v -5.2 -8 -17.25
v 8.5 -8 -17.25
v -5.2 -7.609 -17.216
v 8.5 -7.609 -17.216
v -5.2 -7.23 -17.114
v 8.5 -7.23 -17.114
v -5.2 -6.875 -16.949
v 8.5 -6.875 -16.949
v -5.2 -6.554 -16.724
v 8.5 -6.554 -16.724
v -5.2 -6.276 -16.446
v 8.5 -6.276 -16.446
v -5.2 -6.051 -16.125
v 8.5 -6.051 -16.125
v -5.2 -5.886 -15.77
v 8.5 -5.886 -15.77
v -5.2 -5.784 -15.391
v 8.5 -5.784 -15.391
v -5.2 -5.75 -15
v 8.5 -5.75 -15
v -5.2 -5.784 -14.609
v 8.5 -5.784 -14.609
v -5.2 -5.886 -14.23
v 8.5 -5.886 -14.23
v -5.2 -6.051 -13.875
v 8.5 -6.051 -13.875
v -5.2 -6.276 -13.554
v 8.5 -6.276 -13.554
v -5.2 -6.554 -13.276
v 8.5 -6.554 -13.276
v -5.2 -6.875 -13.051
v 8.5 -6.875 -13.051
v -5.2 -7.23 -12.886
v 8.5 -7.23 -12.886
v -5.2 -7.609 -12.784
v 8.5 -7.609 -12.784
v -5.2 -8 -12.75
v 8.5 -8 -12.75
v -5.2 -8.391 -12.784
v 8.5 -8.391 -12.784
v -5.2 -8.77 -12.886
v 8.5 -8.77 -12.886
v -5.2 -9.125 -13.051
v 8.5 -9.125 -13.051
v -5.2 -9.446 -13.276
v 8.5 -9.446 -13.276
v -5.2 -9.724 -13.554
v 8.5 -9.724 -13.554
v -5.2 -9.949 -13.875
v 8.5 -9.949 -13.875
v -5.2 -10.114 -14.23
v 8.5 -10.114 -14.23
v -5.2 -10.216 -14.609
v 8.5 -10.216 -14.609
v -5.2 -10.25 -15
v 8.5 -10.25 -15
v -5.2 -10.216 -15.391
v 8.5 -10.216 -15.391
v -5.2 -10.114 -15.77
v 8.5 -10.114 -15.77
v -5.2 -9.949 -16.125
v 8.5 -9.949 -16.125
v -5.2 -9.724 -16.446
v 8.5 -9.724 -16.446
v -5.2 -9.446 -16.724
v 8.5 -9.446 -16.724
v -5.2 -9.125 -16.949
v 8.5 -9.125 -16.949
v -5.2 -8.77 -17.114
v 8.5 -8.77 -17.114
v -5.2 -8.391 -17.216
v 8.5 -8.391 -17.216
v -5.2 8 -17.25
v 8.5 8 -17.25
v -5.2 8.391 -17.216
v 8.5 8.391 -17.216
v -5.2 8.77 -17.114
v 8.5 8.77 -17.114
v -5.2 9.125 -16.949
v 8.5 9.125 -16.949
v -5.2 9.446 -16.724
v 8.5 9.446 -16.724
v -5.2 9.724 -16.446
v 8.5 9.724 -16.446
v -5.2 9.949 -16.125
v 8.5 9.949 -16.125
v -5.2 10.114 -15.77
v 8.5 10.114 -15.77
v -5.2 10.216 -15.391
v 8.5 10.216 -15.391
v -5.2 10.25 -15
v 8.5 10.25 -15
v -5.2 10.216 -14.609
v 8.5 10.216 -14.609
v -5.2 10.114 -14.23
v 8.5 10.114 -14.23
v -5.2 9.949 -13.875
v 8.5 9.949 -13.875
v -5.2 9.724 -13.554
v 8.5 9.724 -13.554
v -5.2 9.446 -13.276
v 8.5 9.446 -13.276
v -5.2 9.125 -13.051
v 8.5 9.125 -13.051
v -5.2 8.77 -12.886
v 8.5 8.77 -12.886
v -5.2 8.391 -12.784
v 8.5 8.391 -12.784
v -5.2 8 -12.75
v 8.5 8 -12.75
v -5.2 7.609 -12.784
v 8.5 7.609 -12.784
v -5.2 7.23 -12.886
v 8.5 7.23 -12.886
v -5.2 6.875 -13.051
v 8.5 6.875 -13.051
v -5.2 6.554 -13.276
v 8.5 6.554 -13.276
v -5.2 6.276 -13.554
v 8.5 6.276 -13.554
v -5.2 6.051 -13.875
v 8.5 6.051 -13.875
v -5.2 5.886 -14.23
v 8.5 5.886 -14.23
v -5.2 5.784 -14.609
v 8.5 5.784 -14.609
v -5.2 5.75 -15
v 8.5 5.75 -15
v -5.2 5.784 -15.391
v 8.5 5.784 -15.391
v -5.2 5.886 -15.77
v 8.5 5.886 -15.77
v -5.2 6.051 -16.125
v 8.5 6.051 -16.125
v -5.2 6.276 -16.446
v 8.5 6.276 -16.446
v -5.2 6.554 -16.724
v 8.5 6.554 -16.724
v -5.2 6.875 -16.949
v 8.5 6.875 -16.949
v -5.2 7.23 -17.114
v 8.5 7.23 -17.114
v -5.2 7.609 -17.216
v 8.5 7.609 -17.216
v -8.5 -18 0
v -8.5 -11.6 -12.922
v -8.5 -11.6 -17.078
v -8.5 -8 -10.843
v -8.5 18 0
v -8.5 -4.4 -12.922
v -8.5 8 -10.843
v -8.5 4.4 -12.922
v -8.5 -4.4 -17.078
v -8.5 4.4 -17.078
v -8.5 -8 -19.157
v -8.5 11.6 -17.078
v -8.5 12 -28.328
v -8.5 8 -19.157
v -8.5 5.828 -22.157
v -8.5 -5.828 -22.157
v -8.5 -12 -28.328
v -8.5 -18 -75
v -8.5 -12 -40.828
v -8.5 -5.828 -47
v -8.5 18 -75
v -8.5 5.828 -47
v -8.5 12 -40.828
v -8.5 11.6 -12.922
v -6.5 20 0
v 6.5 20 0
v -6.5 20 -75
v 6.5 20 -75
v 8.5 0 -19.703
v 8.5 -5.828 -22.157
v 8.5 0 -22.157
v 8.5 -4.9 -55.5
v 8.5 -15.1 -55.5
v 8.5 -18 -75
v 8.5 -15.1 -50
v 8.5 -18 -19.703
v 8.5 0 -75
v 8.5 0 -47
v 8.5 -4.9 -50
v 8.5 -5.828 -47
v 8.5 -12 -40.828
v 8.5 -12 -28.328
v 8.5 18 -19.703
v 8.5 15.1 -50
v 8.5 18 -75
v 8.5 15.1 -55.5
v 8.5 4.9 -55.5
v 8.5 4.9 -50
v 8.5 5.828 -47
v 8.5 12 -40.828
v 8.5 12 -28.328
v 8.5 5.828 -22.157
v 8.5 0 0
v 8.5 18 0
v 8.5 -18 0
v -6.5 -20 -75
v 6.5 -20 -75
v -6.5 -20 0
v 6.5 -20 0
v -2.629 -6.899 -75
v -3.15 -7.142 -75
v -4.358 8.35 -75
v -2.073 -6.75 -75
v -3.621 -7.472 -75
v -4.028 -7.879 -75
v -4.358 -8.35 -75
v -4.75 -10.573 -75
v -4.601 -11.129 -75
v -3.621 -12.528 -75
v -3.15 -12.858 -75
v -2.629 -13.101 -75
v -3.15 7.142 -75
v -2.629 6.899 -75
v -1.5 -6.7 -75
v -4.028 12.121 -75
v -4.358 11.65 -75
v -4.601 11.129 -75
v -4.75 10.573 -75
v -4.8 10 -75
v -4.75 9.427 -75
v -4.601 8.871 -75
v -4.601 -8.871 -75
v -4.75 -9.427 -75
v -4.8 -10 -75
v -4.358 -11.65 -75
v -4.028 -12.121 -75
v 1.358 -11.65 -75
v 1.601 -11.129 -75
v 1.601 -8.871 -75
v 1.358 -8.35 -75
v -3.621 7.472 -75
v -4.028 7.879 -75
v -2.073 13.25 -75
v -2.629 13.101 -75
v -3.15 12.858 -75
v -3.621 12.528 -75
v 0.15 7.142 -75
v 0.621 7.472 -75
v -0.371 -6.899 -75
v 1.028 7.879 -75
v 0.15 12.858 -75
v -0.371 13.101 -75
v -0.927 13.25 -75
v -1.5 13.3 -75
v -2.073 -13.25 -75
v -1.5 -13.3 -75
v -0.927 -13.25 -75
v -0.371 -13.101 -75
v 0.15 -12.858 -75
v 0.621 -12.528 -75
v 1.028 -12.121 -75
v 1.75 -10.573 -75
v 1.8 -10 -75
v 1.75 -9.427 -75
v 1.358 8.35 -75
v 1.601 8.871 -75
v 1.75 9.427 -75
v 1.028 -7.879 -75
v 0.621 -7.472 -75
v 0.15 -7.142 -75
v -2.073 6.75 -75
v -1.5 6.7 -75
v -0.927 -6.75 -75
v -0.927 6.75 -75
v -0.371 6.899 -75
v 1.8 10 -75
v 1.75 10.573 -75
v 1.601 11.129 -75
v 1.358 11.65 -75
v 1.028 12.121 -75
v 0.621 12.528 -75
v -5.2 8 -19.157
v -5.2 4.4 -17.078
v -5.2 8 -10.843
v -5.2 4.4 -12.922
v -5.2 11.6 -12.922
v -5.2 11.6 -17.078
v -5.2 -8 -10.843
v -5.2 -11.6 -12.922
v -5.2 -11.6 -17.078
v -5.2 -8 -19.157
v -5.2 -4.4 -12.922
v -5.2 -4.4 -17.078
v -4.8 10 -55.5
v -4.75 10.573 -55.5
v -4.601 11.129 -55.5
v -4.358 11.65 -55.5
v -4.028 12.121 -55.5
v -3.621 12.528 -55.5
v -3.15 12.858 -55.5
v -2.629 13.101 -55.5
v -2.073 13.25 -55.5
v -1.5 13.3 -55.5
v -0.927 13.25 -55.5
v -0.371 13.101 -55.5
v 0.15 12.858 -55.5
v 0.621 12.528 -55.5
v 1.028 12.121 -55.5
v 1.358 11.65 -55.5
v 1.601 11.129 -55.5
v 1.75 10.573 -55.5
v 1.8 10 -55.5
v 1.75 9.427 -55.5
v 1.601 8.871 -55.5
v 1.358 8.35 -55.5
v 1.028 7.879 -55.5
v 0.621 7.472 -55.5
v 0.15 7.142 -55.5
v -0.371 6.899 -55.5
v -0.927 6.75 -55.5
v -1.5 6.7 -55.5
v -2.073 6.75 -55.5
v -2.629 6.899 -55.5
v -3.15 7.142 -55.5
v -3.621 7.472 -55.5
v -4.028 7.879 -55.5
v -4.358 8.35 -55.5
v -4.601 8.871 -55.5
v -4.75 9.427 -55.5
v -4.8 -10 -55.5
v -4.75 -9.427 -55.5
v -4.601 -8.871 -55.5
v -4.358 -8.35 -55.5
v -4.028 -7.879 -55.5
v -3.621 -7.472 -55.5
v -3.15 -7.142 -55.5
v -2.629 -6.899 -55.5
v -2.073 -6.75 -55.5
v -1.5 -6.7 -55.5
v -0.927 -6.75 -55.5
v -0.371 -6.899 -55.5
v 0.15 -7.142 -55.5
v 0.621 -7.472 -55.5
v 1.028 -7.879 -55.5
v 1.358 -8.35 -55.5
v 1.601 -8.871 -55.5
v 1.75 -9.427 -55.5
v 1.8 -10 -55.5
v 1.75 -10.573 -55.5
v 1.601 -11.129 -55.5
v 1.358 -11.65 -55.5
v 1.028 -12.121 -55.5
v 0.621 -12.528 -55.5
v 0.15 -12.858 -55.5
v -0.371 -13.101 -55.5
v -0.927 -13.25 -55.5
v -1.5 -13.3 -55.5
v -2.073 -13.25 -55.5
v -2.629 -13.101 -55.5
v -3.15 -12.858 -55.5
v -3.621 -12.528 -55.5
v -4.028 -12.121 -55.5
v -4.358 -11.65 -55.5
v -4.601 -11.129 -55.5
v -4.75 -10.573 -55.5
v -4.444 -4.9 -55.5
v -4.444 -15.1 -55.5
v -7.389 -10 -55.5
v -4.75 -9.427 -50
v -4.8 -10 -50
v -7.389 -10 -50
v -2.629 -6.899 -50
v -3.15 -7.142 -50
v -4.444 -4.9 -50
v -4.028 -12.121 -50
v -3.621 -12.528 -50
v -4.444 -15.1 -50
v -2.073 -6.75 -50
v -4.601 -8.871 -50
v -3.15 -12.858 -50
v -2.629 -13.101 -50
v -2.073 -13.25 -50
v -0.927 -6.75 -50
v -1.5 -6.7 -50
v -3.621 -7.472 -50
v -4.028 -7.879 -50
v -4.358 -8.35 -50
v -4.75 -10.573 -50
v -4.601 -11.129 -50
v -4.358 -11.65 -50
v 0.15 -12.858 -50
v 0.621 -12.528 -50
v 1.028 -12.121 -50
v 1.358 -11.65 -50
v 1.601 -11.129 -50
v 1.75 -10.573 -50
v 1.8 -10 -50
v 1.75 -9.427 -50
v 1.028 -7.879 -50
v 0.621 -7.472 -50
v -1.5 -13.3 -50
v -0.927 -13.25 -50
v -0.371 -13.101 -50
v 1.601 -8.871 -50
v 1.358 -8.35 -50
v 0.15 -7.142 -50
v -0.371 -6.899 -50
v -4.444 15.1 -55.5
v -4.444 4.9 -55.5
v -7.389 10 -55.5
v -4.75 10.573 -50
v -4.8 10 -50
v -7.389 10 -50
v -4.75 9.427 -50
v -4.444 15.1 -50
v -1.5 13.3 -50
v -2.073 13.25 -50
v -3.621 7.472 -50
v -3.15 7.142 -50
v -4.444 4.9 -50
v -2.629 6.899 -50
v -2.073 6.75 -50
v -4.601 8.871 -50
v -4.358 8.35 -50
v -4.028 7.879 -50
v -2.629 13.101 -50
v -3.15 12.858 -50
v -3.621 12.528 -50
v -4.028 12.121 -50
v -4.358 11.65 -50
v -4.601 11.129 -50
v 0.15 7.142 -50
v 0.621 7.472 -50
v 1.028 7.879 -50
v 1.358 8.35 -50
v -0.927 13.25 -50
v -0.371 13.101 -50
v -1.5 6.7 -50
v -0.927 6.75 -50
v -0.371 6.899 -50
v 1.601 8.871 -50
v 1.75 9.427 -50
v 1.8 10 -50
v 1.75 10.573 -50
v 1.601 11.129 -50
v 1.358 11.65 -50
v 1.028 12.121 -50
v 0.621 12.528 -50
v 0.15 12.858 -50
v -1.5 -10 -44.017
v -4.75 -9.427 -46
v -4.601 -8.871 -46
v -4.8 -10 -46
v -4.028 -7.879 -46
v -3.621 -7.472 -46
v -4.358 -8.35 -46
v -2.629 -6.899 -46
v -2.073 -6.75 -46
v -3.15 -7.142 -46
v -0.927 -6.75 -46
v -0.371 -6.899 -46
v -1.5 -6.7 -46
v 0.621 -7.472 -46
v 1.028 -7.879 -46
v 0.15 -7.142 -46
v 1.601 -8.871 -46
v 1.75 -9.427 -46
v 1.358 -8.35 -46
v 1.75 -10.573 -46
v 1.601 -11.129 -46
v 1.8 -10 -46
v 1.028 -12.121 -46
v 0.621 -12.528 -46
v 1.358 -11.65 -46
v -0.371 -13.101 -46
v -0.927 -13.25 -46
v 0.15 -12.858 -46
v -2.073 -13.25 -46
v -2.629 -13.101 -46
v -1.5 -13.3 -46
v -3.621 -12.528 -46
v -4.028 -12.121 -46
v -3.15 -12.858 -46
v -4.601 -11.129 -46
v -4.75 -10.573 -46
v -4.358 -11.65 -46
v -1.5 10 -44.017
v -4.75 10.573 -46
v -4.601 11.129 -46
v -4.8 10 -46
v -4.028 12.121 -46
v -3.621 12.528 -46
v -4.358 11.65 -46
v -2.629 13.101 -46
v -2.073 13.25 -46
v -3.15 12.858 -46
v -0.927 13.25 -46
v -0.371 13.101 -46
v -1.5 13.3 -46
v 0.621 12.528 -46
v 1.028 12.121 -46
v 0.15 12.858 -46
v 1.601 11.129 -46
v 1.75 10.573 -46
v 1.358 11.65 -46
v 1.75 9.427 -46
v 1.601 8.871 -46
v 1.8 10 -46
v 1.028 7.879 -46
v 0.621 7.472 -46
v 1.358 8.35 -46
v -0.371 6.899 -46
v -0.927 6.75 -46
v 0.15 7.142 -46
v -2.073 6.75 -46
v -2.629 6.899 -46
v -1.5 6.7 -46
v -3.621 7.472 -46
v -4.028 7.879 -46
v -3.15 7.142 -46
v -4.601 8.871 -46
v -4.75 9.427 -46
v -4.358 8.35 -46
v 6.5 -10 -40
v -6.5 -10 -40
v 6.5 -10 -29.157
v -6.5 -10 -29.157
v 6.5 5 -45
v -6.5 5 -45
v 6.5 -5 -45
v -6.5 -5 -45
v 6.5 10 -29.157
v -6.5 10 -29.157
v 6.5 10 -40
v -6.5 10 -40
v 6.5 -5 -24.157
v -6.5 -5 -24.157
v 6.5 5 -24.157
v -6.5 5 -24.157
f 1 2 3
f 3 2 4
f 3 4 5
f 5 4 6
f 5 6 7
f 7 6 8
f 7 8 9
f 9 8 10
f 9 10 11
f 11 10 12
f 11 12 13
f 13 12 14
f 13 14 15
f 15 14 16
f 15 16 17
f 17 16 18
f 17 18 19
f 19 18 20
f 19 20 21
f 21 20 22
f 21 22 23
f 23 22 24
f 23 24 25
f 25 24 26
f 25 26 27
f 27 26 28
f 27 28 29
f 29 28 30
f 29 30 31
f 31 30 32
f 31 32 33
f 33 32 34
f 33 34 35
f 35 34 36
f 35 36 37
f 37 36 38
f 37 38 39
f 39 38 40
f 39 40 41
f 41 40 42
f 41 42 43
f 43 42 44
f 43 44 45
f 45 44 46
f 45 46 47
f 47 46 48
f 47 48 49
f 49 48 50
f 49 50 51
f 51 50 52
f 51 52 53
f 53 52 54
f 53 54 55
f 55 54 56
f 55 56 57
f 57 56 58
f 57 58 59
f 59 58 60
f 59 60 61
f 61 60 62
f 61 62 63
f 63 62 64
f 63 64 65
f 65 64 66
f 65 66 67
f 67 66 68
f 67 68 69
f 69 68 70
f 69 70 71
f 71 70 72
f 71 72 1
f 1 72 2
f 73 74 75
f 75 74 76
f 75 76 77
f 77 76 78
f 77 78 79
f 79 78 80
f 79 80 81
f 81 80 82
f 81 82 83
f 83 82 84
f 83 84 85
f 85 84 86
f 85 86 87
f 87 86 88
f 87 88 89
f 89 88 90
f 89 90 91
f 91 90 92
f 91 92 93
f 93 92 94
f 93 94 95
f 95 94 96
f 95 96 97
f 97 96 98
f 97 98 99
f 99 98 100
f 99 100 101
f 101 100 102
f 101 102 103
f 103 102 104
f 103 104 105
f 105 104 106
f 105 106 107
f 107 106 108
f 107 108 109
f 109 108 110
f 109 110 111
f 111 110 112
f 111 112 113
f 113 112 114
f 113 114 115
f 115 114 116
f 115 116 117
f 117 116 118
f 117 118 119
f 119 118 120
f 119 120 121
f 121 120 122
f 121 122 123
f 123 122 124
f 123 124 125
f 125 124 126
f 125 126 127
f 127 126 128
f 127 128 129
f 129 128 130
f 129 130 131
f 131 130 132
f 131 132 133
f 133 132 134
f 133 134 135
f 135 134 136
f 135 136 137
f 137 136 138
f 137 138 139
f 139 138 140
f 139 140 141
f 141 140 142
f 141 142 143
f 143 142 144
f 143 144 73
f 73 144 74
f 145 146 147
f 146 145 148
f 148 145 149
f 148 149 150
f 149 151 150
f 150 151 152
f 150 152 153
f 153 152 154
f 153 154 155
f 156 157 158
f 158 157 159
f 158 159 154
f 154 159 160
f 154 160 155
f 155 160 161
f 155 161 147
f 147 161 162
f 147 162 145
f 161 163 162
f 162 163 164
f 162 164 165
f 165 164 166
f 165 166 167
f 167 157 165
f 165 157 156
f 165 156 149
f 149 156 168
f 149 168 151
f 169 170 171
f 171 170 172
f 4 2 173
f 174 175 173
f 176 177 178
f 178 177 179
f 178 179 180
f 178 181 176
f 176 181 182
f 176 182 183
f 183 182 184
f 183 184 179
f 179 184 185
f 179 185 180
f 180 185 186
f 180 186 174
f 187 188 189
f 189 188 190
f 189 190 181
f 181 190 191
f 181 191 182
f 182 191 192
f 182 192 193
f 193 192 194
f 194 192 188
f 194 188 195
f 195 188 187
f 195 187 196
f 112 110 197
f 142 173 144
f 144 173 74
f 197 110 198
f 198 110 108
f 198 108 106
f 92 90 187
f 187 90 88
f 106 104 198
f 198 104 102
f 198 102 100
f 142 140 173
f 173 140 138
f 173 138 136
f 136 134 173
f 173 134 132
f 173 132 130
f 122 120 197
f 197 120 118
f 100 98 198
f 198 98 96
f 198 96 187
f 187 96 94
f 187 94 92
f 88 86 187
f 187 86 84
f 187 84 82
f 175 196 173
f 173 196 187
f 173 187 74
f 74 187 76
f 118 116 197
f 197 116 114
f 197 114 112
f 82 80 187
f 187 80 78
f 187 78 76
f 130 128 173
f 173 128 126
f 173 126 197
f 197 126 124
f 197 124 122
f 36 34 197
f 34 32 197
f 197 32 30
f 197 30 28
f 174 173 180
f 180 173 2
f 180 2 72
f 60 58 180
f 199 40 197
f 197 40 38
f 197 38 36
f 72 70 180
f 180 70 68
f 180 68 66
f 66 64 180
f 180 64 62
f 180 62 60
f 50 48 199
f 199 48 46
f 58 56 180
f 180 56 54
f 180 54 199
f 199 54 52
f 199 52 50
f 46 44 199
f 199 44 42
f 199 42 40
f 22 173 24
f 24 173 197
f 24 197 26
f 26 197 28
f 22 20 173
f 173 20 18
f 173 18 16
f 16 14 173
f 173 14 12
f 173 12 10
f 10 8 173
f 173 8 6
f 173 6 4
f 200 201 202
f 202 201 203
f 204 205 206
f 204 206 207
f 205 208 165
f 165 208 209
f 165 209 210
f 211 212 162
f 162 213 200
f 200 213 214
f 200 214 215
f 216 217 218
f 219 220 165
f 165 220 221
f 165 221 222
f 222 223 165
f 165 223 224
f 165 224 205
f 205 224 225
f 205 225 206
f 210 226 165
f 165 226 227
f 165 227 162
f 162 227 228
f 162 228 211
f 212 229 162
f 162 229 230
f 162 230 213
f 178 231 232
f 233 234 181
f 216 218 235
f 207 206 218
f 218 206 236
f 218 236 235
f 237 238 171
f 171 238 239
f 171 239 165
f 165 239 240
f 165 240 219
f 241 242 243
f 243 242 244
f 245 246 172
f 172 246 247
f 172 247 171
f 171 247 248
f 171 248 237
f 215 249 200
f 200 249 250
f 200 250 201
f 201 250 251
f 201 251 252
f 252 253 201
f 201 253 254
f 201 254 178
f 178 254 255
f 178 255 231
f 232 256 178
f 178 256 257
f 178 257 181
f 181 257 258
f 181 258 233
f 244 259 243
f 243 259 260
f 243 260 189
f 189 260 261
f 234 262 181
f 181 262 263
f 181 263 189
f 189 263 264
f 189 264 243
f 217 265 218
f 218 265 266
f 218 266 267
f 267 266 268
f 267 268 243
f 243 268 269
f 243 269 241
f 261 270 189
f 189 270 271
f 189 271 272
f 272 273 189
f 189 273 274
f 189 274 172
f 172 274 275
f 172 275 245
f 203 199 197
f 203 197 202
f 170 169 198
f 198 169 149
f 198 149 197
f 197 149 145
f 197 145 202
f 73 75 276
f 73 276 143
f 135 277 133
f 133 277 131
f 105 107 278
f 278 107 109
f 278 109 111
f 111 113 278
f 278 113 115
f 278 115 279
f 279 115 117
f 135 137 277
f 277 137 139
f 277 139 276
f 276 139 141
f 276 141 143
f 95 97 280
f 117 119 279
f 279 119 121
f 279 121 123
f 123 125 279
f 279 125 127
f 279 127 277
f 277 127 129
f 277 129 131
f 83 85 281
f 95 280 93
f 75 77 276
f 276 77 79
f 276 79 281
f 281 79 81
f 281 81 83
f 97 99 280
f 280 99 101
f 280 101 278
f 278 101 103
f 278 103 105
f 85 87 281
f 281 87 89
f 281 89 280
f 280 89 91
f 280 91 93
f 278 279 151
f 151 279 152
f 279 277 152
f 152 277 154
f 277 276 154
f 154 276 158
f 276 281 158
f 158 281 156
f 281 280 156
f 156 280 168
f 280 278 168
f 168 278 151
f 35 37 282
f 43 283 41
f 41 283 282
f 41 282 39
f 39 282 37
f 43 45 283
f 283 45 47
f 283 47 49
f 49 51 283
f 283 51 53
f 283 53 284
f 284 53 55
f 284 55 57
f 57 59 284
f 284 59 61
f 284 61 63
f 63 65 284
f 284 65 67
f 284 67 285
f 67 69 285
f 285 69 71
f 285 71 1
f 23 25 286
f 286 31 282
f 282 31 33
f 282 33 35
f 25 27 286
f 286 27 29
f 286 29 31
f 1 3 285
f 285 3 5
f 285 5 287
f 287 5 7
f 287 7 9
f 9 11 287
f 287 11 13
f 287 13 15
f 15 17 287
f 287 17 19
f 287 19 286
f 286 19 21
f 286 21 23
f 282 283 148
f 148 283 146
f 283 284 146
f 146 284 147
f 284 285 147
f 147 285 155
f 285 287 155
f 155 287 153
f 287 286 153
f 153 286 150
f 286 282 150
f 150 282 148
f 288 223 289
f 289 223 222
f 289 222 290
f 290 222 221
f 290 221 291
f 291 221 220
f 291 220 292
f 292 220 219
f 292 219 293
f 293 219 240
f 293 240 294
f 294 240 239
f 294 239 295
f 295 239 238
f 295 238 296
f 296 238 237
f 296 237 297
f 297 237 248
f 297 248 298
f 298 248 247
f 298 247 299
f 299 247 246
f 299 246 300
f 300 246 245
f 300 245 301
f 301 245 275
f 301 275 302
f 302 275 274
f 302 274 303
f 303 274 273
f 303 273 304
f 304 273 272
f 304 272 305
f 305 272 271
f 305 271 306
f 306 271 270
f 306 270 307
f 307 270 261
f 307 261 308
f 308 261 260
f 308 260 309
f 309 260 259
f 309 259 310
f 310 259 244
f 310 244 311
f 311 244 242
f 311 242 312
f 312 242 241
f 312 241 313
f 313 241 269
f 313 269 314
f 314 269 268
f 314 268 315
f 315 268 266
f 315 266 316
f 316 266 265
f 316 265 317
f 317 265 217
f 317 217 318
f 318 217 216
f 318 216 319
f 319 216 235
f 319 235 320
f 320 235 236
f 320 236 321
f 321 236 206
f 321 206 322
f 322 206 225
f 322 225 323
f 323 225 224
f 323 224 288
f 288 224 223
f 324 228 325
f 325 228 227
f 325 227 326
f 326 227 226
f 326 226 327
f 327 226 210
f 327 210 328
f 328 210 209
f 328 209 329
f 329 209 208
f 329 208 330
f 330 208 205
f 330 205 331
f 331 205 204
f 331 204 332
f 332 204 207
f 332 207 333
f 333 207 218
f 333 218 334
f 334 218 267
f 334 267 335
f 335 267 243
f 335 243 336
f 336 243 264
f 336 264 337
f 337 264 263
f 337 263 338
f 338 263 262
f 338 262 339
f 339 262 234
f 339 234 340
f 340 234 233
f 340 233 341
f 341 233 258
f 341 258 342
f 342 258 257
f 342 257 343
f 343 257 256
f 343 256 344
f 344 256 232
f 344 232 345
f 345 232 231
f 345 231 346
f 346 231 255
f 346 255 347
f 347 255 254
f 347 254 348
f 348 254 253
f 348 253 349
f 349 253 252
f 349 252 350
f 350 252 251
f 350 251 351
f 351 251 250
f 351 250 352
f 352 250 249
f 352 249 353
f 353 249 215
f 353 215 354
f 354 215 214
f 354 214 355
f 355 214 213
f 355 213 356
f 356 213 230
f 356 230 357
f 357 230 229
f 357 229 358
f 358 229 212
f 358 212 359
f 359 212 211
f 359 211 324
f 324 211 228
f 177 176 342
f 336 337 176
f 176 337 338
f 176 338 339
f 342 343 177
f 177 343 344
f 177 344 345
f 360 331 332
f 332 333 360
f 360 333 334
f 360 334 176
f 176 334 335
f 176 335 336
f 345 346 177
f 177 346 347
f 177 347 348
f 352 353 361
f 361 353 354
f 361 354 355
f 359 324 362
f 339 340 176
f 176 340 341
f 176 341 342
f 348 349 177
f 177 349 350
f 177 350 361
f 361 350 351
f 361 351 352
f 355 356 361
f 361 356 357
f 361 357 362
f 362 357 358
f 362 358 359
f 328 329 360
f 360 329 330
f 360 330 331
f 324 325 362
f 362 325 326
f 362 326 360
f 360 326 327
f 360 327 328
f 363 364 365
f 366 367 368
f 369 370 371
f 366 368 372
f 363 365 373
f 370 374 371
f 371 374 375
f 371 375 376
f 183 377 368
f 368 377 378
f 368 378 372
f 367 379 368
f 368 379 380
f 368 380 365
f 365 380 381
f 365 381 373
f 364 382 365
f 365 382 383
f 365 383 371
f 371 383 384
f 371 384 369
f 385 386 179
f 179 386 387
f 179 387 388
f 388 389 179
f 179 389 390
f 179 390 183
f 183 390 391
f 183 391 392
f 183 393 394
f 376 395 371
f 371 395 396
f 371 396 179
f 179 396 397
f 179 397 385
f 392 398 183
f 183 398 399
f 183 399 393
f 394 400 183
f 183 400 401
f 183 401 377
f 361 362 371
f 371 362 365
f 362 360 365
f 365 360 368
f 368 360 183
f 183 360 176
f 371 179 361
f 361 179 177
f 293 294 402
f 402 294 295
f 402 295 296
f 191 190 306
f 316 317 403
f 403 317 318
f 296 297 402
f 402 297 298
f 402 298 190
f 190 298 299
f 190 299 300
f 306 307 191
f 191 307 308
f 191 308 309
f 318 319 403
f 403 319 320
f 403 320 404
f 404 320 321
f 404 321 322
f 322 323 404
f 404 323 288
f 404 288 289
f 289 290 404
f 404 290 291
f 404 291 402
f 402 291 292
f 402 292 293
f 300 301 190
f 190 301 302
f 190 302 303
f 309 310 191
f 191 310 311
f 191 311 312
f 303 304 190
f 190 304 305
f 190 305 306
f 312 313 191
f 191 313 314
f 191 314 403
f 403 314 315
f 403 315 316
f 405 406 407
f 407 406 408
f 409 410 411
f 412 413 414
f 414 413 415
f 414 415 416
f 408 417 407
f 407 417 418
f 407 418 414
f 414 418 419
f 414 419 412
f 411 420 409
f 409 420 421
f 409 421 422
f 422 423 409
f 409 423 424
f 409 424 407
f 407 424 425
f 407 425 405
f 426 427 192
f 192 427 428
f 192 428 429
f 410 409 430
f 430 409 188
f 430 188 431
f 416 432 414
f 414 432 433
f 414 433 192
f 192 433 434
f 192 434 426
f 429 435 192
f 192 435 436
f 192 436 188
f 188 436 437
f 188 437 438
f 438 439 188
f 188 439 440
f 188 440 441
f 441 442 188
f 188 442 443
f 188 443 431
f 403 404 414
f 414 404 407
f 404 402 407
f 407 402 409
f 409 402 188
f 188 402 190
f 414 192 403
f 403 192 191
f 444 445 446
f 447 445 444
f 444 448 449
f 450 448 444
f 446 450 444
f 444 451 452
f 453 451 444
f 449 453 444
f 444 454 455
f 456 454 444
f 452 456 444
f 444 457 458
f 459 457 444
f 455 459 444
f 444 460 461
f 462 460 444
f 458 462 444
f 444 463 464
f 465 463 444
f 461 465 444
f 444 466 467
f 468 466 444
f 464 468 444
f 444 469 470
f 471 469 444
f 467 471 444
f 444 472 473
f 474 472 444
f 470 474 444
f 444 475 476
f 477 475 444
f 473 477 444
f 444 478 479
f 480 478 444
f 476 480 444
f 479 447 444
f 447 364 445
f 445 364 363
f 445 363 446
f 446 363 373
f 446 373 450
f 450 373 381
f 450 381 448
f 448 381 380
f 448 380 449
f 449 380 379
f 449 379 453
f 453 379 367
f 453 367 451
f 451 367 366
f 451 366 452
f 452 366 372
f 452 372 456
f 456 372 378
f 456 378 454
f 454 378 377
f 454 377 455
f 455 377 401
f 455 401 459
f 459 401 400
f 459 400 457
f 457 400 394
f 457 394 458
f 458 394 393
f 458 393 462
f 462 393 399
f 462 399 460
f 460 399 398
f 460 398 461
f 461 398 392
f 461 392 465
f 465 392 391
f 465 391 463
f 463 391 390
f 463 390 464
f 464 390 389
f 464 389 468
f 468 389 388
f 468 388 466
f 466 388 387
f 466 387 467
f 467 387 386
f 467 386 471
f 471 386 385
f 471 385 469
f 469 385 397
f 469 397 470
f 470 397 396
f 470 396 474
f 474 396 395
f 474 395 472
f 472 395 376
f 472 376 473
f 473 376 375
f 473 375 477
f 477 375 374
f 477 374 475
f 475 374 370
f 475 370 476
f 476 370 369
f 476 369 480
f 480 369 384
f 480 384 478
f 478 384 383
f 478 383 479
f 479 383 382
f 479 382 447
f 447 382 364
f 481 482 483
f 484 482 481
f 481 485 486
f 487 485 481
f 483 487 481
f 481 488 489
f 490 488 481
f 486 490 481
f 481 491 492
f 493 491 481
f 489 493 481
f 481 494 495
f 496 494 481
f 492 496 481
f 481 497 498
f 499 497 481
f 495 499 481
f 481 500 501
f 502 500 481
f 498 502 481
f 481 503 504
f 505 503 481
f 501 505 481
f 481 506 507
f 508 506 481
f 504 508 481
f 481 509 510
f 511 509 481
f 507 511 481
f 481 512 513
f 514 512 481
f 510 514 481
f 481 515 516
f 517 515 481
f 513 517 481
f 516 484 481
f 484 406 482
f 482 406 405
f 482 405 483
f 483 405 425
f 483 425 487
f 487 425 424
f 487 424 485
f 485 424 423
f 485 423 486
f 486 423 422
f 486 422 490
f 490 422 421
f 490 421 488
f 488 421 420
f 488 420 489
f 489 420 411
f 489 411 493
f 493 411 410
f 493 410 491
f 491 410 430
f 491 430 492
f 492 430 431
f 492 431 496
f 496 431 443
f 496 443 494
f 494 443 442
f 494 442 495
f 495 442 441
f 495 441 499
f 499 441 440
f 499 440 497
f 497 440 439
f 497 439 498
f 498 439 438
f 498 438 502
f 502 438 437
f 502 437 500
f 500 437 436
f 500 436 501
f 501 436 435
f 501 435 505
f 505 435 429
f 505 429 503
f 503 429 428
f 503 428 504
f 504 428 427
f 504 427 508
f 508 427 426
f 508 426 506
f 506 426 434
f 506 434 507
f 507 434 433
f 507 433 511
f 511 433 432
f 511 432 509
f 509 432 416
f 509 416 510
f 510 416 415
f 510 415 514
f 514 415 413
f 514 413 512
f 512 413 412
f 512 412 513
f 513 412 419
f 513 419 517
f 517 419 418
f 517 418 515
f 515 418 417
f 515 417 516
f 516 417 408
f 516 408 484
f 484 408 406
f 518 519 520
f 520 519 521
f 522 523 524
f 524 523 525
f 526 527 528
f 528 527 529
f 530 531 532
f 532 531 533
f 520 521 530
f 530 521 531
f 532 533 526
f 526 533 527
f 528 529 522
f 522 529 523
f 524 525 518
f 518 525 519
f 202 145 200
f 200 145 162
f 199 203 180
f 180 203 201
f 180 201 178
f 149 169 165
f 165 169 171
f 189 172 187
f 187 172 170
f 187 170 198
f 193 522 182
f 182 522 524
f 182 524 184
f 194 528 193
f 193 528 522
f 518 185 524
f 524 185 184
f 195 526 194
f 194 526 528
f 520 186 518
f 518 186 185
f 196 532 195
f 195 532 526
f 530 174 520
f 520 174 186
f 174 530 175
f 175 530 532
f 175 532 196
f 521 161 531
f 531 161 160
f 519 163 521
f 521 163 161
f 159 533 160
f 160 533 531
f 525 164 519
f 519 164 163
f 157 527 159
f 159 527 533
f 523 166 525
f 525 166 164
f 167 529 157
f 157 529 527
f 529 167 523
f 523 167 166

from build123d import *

# Parameters (mm, degrees)
SKETCH1_W                = 17
SKETCH1_H                = 40
BOSS_EXTRUDE1_DEPTH      = 75
M4_CLEARANCE_HOLE1_D     = 4.5
M4_CLEARANCE_HOLE1_DEPTH = 15
M4_CLEARANCE_HOLE1_TIP   = 1.351936393
CUT_EXTRUDE1_DEPTH       = 3.3
M6_CLEARANCE_HOLE1_D     = 6.6
M6_CLEARANCE_HOLE1_DEPTH = 29
M6_CLEARANCE_HOLE1_TIP   = 1.982840043
CUT_EXTRUDE2_START       = -25
CUT_EXTRUDE2_DEPTH       = 5.5
SKETCH11_W               = 5.5
SKETCH11_H               = 10.2
CUT_EXTRUDE3_DEPTH       = 10
CHAMFER1_START           = -8.5
CHAMFER1_DEPTH           = 17
CHAMFER2_SIZE            = 2
CHAMFER3_SIZE            = 2


with BuildPart() as part:
    # Sketch1 → Boss-Extrude1 (new body)
    with BuildSketch(Plane.XY):
        Rectangle(SKETCH1_W, SKETCH1_H)
    extrude(amount=-BOSS_EXTRUDE1_DEPTH)

    # M4 Clearance Hole1
    with Locations(Plane(origin=(8.5, 0, 0), x_dir=(0, 0, -1), z_dir=(1, 0, 0))):
        with Locations((15, 8), (15, -8)):
            Hole(M4_CLEARANCE_HOLE1_D / 2, depth=M4_CLEARANCE_HOLE1_DEPTH)
            with Locations((0, 0, -(M4_CLEARANCE_HOLE1_DEPTH + M4_CLEARANCE_HOLE1_TIP / 2))):  # 118° drill point
                Cone(0, M4_CLEARANCE_HOLE1_D / 2, M4_CLEARANCE_HOLE1_TIP, mode=Mode.SUBTRACT)

    # Sketch6 → Cut-Extrude1 (cut)
    with BuildSketch(Plane.ZY.offset(8.5)):
        Polygon((-10.843078062, 8), (-12.921539031, 11.6), (-17.078460969, 11.6), (-19.156921938, 8), (-17.078460969, 4.4), (-12.921539031, 4.4), align=None)
        Polygon((-10.843078062, -8), (-12.921539031, -4.4), (-17.078460969, -4.4), (-19.156921938, -8), (-17.078460969, -11.6), (-12.921539031, -11.6), align=None)
    extrude(amount=-CUT_EXTRUDE1_DEPTH, mode=Mode.SUBTRACT)

    # M6 Clearance Hole1
    with Locations(Plane(origin=(0, 0, -75), x_dir=(-1, 0, 0), z_dir=(0, 0, -1))):
        with Locations((1.5, -10), (1.5, 10)):
            Hole(M6_CLEARANCE_HOLE1_D / 2, depth=M6_CLEARANCE_HOLE1_DEPTH)
            with Locations((0, 0, -(M6_CLEARANCE_HOLE1_DEPTH + M6_CLEARANCE_HOLE1_TIP / 2))):  # 118° drill point
                Cone(0, M6_CLEARANCE_HOLE1_D / 2, M6_CLEARANCE_HOLE1_TIP, mode=Mode.SUBTRACT)

    # Sketch10 → Cut-Extrude2 (cut)
    with BuildSketch(Plane(origin=(0, 0, -75), x_dir=(-1, 0, 0), z_dir=(0, 0, -1)).offset(CUT_EXTRUDE2_START)):
        Polygon((7.388972746, 10), (4.444486373, 15.1), (-1.444486373, 15.1), (-4.388972746, 10), (-1.444486373, 4.9), (4.444486373, 4.9), align=None)
        Polygon((7.388972746, -10), (4.444486373, -4.9), (-1.444486373, -4.9), (-4.388972746, -10), (-1.444486373, -15.1), (4.444486373, -15.1), align=None)
    extrude(amount=CUT_EXTRUDE2_DEPTH, mode=Mode.SUBTRACT)

    # Sketch11 → Cut-Extrude3 (cut)
    with BuildSketch(Plane(origin=(8.5, 0, 0), x_dir=(0, 0, -1), z_dir=(1, 0, 0))):
        with Locations((52.75, 10)):
            Rectangle(SKETCH11_W, SKETCH11_H)
        with Locations((52.75, -10)):
            Rectangle(SKETCH11_W, SKETCH11_H)
    extrude(amount=-CUT_EXTRUDE3_DEPTH, mode=Mode.SUBTRACT)

    # Chamfer1: read off the stored shape, not the designer's step
    # Chamfer1 outline → Chamfer1 (cut)
    with BuildSketch(Plane.YZ.offset(CHAMFER1_START)):
        Polygon((-5, -24.156921938), (-10, -29.156921938), (-10, -40), (-5, -45), (5, -45), (10, -40), (10, -29.156921938), (5, -24.156921938), align=None)
    extrude(amount=CHAMFER1_DEPTH, mode=Mode.SUBTRACT)

    # Chamfer2
    chamfer2_edges = [part.edges().sort_by_distance(p)[0] for p in [
        (-8.5, 20, -37.5),
        (8.5, 20, -37.5),
        (8.5, -20, -37.5),
        (-8.5, -20, -37.5),
    ]]
    chamfer(chamfer2_edges, length=CHAMFER2_SIZE)

    # Chamfer3
    chamfer3_edges = [part.edges().sort_by_distance(p)[0] for p in [
        (-8.5, -10, -34.578460969),
        (8.5, -10, -34.578460969),
        (-8.5, 0, -24.156921938),
        (8.5, 0, -24.156921938),
        (-8.5, 10, -34.578460969),
        (8.5, 10, -34.578460969),
        (-8.5, 0, -45),
        (8.5, 0, -45),
        (8.5, -7.5, -26.656921938),
        (-8.5, -7.5, -26.656921938),
        (8.5, 7.5, -26.656921938),
        (-8.5, 7.5, -26.656921938),
        (8.5, 7.5, -42.5),
        (-8.5, 7.5, -42.5),
        (8.5, -7.5, -42.5),
        (-8.5, -7.5, -42.5),
    ]]
    chamfer(chamfer3_edges, length=CHAMFER3_SIZE)


solid = part.part
